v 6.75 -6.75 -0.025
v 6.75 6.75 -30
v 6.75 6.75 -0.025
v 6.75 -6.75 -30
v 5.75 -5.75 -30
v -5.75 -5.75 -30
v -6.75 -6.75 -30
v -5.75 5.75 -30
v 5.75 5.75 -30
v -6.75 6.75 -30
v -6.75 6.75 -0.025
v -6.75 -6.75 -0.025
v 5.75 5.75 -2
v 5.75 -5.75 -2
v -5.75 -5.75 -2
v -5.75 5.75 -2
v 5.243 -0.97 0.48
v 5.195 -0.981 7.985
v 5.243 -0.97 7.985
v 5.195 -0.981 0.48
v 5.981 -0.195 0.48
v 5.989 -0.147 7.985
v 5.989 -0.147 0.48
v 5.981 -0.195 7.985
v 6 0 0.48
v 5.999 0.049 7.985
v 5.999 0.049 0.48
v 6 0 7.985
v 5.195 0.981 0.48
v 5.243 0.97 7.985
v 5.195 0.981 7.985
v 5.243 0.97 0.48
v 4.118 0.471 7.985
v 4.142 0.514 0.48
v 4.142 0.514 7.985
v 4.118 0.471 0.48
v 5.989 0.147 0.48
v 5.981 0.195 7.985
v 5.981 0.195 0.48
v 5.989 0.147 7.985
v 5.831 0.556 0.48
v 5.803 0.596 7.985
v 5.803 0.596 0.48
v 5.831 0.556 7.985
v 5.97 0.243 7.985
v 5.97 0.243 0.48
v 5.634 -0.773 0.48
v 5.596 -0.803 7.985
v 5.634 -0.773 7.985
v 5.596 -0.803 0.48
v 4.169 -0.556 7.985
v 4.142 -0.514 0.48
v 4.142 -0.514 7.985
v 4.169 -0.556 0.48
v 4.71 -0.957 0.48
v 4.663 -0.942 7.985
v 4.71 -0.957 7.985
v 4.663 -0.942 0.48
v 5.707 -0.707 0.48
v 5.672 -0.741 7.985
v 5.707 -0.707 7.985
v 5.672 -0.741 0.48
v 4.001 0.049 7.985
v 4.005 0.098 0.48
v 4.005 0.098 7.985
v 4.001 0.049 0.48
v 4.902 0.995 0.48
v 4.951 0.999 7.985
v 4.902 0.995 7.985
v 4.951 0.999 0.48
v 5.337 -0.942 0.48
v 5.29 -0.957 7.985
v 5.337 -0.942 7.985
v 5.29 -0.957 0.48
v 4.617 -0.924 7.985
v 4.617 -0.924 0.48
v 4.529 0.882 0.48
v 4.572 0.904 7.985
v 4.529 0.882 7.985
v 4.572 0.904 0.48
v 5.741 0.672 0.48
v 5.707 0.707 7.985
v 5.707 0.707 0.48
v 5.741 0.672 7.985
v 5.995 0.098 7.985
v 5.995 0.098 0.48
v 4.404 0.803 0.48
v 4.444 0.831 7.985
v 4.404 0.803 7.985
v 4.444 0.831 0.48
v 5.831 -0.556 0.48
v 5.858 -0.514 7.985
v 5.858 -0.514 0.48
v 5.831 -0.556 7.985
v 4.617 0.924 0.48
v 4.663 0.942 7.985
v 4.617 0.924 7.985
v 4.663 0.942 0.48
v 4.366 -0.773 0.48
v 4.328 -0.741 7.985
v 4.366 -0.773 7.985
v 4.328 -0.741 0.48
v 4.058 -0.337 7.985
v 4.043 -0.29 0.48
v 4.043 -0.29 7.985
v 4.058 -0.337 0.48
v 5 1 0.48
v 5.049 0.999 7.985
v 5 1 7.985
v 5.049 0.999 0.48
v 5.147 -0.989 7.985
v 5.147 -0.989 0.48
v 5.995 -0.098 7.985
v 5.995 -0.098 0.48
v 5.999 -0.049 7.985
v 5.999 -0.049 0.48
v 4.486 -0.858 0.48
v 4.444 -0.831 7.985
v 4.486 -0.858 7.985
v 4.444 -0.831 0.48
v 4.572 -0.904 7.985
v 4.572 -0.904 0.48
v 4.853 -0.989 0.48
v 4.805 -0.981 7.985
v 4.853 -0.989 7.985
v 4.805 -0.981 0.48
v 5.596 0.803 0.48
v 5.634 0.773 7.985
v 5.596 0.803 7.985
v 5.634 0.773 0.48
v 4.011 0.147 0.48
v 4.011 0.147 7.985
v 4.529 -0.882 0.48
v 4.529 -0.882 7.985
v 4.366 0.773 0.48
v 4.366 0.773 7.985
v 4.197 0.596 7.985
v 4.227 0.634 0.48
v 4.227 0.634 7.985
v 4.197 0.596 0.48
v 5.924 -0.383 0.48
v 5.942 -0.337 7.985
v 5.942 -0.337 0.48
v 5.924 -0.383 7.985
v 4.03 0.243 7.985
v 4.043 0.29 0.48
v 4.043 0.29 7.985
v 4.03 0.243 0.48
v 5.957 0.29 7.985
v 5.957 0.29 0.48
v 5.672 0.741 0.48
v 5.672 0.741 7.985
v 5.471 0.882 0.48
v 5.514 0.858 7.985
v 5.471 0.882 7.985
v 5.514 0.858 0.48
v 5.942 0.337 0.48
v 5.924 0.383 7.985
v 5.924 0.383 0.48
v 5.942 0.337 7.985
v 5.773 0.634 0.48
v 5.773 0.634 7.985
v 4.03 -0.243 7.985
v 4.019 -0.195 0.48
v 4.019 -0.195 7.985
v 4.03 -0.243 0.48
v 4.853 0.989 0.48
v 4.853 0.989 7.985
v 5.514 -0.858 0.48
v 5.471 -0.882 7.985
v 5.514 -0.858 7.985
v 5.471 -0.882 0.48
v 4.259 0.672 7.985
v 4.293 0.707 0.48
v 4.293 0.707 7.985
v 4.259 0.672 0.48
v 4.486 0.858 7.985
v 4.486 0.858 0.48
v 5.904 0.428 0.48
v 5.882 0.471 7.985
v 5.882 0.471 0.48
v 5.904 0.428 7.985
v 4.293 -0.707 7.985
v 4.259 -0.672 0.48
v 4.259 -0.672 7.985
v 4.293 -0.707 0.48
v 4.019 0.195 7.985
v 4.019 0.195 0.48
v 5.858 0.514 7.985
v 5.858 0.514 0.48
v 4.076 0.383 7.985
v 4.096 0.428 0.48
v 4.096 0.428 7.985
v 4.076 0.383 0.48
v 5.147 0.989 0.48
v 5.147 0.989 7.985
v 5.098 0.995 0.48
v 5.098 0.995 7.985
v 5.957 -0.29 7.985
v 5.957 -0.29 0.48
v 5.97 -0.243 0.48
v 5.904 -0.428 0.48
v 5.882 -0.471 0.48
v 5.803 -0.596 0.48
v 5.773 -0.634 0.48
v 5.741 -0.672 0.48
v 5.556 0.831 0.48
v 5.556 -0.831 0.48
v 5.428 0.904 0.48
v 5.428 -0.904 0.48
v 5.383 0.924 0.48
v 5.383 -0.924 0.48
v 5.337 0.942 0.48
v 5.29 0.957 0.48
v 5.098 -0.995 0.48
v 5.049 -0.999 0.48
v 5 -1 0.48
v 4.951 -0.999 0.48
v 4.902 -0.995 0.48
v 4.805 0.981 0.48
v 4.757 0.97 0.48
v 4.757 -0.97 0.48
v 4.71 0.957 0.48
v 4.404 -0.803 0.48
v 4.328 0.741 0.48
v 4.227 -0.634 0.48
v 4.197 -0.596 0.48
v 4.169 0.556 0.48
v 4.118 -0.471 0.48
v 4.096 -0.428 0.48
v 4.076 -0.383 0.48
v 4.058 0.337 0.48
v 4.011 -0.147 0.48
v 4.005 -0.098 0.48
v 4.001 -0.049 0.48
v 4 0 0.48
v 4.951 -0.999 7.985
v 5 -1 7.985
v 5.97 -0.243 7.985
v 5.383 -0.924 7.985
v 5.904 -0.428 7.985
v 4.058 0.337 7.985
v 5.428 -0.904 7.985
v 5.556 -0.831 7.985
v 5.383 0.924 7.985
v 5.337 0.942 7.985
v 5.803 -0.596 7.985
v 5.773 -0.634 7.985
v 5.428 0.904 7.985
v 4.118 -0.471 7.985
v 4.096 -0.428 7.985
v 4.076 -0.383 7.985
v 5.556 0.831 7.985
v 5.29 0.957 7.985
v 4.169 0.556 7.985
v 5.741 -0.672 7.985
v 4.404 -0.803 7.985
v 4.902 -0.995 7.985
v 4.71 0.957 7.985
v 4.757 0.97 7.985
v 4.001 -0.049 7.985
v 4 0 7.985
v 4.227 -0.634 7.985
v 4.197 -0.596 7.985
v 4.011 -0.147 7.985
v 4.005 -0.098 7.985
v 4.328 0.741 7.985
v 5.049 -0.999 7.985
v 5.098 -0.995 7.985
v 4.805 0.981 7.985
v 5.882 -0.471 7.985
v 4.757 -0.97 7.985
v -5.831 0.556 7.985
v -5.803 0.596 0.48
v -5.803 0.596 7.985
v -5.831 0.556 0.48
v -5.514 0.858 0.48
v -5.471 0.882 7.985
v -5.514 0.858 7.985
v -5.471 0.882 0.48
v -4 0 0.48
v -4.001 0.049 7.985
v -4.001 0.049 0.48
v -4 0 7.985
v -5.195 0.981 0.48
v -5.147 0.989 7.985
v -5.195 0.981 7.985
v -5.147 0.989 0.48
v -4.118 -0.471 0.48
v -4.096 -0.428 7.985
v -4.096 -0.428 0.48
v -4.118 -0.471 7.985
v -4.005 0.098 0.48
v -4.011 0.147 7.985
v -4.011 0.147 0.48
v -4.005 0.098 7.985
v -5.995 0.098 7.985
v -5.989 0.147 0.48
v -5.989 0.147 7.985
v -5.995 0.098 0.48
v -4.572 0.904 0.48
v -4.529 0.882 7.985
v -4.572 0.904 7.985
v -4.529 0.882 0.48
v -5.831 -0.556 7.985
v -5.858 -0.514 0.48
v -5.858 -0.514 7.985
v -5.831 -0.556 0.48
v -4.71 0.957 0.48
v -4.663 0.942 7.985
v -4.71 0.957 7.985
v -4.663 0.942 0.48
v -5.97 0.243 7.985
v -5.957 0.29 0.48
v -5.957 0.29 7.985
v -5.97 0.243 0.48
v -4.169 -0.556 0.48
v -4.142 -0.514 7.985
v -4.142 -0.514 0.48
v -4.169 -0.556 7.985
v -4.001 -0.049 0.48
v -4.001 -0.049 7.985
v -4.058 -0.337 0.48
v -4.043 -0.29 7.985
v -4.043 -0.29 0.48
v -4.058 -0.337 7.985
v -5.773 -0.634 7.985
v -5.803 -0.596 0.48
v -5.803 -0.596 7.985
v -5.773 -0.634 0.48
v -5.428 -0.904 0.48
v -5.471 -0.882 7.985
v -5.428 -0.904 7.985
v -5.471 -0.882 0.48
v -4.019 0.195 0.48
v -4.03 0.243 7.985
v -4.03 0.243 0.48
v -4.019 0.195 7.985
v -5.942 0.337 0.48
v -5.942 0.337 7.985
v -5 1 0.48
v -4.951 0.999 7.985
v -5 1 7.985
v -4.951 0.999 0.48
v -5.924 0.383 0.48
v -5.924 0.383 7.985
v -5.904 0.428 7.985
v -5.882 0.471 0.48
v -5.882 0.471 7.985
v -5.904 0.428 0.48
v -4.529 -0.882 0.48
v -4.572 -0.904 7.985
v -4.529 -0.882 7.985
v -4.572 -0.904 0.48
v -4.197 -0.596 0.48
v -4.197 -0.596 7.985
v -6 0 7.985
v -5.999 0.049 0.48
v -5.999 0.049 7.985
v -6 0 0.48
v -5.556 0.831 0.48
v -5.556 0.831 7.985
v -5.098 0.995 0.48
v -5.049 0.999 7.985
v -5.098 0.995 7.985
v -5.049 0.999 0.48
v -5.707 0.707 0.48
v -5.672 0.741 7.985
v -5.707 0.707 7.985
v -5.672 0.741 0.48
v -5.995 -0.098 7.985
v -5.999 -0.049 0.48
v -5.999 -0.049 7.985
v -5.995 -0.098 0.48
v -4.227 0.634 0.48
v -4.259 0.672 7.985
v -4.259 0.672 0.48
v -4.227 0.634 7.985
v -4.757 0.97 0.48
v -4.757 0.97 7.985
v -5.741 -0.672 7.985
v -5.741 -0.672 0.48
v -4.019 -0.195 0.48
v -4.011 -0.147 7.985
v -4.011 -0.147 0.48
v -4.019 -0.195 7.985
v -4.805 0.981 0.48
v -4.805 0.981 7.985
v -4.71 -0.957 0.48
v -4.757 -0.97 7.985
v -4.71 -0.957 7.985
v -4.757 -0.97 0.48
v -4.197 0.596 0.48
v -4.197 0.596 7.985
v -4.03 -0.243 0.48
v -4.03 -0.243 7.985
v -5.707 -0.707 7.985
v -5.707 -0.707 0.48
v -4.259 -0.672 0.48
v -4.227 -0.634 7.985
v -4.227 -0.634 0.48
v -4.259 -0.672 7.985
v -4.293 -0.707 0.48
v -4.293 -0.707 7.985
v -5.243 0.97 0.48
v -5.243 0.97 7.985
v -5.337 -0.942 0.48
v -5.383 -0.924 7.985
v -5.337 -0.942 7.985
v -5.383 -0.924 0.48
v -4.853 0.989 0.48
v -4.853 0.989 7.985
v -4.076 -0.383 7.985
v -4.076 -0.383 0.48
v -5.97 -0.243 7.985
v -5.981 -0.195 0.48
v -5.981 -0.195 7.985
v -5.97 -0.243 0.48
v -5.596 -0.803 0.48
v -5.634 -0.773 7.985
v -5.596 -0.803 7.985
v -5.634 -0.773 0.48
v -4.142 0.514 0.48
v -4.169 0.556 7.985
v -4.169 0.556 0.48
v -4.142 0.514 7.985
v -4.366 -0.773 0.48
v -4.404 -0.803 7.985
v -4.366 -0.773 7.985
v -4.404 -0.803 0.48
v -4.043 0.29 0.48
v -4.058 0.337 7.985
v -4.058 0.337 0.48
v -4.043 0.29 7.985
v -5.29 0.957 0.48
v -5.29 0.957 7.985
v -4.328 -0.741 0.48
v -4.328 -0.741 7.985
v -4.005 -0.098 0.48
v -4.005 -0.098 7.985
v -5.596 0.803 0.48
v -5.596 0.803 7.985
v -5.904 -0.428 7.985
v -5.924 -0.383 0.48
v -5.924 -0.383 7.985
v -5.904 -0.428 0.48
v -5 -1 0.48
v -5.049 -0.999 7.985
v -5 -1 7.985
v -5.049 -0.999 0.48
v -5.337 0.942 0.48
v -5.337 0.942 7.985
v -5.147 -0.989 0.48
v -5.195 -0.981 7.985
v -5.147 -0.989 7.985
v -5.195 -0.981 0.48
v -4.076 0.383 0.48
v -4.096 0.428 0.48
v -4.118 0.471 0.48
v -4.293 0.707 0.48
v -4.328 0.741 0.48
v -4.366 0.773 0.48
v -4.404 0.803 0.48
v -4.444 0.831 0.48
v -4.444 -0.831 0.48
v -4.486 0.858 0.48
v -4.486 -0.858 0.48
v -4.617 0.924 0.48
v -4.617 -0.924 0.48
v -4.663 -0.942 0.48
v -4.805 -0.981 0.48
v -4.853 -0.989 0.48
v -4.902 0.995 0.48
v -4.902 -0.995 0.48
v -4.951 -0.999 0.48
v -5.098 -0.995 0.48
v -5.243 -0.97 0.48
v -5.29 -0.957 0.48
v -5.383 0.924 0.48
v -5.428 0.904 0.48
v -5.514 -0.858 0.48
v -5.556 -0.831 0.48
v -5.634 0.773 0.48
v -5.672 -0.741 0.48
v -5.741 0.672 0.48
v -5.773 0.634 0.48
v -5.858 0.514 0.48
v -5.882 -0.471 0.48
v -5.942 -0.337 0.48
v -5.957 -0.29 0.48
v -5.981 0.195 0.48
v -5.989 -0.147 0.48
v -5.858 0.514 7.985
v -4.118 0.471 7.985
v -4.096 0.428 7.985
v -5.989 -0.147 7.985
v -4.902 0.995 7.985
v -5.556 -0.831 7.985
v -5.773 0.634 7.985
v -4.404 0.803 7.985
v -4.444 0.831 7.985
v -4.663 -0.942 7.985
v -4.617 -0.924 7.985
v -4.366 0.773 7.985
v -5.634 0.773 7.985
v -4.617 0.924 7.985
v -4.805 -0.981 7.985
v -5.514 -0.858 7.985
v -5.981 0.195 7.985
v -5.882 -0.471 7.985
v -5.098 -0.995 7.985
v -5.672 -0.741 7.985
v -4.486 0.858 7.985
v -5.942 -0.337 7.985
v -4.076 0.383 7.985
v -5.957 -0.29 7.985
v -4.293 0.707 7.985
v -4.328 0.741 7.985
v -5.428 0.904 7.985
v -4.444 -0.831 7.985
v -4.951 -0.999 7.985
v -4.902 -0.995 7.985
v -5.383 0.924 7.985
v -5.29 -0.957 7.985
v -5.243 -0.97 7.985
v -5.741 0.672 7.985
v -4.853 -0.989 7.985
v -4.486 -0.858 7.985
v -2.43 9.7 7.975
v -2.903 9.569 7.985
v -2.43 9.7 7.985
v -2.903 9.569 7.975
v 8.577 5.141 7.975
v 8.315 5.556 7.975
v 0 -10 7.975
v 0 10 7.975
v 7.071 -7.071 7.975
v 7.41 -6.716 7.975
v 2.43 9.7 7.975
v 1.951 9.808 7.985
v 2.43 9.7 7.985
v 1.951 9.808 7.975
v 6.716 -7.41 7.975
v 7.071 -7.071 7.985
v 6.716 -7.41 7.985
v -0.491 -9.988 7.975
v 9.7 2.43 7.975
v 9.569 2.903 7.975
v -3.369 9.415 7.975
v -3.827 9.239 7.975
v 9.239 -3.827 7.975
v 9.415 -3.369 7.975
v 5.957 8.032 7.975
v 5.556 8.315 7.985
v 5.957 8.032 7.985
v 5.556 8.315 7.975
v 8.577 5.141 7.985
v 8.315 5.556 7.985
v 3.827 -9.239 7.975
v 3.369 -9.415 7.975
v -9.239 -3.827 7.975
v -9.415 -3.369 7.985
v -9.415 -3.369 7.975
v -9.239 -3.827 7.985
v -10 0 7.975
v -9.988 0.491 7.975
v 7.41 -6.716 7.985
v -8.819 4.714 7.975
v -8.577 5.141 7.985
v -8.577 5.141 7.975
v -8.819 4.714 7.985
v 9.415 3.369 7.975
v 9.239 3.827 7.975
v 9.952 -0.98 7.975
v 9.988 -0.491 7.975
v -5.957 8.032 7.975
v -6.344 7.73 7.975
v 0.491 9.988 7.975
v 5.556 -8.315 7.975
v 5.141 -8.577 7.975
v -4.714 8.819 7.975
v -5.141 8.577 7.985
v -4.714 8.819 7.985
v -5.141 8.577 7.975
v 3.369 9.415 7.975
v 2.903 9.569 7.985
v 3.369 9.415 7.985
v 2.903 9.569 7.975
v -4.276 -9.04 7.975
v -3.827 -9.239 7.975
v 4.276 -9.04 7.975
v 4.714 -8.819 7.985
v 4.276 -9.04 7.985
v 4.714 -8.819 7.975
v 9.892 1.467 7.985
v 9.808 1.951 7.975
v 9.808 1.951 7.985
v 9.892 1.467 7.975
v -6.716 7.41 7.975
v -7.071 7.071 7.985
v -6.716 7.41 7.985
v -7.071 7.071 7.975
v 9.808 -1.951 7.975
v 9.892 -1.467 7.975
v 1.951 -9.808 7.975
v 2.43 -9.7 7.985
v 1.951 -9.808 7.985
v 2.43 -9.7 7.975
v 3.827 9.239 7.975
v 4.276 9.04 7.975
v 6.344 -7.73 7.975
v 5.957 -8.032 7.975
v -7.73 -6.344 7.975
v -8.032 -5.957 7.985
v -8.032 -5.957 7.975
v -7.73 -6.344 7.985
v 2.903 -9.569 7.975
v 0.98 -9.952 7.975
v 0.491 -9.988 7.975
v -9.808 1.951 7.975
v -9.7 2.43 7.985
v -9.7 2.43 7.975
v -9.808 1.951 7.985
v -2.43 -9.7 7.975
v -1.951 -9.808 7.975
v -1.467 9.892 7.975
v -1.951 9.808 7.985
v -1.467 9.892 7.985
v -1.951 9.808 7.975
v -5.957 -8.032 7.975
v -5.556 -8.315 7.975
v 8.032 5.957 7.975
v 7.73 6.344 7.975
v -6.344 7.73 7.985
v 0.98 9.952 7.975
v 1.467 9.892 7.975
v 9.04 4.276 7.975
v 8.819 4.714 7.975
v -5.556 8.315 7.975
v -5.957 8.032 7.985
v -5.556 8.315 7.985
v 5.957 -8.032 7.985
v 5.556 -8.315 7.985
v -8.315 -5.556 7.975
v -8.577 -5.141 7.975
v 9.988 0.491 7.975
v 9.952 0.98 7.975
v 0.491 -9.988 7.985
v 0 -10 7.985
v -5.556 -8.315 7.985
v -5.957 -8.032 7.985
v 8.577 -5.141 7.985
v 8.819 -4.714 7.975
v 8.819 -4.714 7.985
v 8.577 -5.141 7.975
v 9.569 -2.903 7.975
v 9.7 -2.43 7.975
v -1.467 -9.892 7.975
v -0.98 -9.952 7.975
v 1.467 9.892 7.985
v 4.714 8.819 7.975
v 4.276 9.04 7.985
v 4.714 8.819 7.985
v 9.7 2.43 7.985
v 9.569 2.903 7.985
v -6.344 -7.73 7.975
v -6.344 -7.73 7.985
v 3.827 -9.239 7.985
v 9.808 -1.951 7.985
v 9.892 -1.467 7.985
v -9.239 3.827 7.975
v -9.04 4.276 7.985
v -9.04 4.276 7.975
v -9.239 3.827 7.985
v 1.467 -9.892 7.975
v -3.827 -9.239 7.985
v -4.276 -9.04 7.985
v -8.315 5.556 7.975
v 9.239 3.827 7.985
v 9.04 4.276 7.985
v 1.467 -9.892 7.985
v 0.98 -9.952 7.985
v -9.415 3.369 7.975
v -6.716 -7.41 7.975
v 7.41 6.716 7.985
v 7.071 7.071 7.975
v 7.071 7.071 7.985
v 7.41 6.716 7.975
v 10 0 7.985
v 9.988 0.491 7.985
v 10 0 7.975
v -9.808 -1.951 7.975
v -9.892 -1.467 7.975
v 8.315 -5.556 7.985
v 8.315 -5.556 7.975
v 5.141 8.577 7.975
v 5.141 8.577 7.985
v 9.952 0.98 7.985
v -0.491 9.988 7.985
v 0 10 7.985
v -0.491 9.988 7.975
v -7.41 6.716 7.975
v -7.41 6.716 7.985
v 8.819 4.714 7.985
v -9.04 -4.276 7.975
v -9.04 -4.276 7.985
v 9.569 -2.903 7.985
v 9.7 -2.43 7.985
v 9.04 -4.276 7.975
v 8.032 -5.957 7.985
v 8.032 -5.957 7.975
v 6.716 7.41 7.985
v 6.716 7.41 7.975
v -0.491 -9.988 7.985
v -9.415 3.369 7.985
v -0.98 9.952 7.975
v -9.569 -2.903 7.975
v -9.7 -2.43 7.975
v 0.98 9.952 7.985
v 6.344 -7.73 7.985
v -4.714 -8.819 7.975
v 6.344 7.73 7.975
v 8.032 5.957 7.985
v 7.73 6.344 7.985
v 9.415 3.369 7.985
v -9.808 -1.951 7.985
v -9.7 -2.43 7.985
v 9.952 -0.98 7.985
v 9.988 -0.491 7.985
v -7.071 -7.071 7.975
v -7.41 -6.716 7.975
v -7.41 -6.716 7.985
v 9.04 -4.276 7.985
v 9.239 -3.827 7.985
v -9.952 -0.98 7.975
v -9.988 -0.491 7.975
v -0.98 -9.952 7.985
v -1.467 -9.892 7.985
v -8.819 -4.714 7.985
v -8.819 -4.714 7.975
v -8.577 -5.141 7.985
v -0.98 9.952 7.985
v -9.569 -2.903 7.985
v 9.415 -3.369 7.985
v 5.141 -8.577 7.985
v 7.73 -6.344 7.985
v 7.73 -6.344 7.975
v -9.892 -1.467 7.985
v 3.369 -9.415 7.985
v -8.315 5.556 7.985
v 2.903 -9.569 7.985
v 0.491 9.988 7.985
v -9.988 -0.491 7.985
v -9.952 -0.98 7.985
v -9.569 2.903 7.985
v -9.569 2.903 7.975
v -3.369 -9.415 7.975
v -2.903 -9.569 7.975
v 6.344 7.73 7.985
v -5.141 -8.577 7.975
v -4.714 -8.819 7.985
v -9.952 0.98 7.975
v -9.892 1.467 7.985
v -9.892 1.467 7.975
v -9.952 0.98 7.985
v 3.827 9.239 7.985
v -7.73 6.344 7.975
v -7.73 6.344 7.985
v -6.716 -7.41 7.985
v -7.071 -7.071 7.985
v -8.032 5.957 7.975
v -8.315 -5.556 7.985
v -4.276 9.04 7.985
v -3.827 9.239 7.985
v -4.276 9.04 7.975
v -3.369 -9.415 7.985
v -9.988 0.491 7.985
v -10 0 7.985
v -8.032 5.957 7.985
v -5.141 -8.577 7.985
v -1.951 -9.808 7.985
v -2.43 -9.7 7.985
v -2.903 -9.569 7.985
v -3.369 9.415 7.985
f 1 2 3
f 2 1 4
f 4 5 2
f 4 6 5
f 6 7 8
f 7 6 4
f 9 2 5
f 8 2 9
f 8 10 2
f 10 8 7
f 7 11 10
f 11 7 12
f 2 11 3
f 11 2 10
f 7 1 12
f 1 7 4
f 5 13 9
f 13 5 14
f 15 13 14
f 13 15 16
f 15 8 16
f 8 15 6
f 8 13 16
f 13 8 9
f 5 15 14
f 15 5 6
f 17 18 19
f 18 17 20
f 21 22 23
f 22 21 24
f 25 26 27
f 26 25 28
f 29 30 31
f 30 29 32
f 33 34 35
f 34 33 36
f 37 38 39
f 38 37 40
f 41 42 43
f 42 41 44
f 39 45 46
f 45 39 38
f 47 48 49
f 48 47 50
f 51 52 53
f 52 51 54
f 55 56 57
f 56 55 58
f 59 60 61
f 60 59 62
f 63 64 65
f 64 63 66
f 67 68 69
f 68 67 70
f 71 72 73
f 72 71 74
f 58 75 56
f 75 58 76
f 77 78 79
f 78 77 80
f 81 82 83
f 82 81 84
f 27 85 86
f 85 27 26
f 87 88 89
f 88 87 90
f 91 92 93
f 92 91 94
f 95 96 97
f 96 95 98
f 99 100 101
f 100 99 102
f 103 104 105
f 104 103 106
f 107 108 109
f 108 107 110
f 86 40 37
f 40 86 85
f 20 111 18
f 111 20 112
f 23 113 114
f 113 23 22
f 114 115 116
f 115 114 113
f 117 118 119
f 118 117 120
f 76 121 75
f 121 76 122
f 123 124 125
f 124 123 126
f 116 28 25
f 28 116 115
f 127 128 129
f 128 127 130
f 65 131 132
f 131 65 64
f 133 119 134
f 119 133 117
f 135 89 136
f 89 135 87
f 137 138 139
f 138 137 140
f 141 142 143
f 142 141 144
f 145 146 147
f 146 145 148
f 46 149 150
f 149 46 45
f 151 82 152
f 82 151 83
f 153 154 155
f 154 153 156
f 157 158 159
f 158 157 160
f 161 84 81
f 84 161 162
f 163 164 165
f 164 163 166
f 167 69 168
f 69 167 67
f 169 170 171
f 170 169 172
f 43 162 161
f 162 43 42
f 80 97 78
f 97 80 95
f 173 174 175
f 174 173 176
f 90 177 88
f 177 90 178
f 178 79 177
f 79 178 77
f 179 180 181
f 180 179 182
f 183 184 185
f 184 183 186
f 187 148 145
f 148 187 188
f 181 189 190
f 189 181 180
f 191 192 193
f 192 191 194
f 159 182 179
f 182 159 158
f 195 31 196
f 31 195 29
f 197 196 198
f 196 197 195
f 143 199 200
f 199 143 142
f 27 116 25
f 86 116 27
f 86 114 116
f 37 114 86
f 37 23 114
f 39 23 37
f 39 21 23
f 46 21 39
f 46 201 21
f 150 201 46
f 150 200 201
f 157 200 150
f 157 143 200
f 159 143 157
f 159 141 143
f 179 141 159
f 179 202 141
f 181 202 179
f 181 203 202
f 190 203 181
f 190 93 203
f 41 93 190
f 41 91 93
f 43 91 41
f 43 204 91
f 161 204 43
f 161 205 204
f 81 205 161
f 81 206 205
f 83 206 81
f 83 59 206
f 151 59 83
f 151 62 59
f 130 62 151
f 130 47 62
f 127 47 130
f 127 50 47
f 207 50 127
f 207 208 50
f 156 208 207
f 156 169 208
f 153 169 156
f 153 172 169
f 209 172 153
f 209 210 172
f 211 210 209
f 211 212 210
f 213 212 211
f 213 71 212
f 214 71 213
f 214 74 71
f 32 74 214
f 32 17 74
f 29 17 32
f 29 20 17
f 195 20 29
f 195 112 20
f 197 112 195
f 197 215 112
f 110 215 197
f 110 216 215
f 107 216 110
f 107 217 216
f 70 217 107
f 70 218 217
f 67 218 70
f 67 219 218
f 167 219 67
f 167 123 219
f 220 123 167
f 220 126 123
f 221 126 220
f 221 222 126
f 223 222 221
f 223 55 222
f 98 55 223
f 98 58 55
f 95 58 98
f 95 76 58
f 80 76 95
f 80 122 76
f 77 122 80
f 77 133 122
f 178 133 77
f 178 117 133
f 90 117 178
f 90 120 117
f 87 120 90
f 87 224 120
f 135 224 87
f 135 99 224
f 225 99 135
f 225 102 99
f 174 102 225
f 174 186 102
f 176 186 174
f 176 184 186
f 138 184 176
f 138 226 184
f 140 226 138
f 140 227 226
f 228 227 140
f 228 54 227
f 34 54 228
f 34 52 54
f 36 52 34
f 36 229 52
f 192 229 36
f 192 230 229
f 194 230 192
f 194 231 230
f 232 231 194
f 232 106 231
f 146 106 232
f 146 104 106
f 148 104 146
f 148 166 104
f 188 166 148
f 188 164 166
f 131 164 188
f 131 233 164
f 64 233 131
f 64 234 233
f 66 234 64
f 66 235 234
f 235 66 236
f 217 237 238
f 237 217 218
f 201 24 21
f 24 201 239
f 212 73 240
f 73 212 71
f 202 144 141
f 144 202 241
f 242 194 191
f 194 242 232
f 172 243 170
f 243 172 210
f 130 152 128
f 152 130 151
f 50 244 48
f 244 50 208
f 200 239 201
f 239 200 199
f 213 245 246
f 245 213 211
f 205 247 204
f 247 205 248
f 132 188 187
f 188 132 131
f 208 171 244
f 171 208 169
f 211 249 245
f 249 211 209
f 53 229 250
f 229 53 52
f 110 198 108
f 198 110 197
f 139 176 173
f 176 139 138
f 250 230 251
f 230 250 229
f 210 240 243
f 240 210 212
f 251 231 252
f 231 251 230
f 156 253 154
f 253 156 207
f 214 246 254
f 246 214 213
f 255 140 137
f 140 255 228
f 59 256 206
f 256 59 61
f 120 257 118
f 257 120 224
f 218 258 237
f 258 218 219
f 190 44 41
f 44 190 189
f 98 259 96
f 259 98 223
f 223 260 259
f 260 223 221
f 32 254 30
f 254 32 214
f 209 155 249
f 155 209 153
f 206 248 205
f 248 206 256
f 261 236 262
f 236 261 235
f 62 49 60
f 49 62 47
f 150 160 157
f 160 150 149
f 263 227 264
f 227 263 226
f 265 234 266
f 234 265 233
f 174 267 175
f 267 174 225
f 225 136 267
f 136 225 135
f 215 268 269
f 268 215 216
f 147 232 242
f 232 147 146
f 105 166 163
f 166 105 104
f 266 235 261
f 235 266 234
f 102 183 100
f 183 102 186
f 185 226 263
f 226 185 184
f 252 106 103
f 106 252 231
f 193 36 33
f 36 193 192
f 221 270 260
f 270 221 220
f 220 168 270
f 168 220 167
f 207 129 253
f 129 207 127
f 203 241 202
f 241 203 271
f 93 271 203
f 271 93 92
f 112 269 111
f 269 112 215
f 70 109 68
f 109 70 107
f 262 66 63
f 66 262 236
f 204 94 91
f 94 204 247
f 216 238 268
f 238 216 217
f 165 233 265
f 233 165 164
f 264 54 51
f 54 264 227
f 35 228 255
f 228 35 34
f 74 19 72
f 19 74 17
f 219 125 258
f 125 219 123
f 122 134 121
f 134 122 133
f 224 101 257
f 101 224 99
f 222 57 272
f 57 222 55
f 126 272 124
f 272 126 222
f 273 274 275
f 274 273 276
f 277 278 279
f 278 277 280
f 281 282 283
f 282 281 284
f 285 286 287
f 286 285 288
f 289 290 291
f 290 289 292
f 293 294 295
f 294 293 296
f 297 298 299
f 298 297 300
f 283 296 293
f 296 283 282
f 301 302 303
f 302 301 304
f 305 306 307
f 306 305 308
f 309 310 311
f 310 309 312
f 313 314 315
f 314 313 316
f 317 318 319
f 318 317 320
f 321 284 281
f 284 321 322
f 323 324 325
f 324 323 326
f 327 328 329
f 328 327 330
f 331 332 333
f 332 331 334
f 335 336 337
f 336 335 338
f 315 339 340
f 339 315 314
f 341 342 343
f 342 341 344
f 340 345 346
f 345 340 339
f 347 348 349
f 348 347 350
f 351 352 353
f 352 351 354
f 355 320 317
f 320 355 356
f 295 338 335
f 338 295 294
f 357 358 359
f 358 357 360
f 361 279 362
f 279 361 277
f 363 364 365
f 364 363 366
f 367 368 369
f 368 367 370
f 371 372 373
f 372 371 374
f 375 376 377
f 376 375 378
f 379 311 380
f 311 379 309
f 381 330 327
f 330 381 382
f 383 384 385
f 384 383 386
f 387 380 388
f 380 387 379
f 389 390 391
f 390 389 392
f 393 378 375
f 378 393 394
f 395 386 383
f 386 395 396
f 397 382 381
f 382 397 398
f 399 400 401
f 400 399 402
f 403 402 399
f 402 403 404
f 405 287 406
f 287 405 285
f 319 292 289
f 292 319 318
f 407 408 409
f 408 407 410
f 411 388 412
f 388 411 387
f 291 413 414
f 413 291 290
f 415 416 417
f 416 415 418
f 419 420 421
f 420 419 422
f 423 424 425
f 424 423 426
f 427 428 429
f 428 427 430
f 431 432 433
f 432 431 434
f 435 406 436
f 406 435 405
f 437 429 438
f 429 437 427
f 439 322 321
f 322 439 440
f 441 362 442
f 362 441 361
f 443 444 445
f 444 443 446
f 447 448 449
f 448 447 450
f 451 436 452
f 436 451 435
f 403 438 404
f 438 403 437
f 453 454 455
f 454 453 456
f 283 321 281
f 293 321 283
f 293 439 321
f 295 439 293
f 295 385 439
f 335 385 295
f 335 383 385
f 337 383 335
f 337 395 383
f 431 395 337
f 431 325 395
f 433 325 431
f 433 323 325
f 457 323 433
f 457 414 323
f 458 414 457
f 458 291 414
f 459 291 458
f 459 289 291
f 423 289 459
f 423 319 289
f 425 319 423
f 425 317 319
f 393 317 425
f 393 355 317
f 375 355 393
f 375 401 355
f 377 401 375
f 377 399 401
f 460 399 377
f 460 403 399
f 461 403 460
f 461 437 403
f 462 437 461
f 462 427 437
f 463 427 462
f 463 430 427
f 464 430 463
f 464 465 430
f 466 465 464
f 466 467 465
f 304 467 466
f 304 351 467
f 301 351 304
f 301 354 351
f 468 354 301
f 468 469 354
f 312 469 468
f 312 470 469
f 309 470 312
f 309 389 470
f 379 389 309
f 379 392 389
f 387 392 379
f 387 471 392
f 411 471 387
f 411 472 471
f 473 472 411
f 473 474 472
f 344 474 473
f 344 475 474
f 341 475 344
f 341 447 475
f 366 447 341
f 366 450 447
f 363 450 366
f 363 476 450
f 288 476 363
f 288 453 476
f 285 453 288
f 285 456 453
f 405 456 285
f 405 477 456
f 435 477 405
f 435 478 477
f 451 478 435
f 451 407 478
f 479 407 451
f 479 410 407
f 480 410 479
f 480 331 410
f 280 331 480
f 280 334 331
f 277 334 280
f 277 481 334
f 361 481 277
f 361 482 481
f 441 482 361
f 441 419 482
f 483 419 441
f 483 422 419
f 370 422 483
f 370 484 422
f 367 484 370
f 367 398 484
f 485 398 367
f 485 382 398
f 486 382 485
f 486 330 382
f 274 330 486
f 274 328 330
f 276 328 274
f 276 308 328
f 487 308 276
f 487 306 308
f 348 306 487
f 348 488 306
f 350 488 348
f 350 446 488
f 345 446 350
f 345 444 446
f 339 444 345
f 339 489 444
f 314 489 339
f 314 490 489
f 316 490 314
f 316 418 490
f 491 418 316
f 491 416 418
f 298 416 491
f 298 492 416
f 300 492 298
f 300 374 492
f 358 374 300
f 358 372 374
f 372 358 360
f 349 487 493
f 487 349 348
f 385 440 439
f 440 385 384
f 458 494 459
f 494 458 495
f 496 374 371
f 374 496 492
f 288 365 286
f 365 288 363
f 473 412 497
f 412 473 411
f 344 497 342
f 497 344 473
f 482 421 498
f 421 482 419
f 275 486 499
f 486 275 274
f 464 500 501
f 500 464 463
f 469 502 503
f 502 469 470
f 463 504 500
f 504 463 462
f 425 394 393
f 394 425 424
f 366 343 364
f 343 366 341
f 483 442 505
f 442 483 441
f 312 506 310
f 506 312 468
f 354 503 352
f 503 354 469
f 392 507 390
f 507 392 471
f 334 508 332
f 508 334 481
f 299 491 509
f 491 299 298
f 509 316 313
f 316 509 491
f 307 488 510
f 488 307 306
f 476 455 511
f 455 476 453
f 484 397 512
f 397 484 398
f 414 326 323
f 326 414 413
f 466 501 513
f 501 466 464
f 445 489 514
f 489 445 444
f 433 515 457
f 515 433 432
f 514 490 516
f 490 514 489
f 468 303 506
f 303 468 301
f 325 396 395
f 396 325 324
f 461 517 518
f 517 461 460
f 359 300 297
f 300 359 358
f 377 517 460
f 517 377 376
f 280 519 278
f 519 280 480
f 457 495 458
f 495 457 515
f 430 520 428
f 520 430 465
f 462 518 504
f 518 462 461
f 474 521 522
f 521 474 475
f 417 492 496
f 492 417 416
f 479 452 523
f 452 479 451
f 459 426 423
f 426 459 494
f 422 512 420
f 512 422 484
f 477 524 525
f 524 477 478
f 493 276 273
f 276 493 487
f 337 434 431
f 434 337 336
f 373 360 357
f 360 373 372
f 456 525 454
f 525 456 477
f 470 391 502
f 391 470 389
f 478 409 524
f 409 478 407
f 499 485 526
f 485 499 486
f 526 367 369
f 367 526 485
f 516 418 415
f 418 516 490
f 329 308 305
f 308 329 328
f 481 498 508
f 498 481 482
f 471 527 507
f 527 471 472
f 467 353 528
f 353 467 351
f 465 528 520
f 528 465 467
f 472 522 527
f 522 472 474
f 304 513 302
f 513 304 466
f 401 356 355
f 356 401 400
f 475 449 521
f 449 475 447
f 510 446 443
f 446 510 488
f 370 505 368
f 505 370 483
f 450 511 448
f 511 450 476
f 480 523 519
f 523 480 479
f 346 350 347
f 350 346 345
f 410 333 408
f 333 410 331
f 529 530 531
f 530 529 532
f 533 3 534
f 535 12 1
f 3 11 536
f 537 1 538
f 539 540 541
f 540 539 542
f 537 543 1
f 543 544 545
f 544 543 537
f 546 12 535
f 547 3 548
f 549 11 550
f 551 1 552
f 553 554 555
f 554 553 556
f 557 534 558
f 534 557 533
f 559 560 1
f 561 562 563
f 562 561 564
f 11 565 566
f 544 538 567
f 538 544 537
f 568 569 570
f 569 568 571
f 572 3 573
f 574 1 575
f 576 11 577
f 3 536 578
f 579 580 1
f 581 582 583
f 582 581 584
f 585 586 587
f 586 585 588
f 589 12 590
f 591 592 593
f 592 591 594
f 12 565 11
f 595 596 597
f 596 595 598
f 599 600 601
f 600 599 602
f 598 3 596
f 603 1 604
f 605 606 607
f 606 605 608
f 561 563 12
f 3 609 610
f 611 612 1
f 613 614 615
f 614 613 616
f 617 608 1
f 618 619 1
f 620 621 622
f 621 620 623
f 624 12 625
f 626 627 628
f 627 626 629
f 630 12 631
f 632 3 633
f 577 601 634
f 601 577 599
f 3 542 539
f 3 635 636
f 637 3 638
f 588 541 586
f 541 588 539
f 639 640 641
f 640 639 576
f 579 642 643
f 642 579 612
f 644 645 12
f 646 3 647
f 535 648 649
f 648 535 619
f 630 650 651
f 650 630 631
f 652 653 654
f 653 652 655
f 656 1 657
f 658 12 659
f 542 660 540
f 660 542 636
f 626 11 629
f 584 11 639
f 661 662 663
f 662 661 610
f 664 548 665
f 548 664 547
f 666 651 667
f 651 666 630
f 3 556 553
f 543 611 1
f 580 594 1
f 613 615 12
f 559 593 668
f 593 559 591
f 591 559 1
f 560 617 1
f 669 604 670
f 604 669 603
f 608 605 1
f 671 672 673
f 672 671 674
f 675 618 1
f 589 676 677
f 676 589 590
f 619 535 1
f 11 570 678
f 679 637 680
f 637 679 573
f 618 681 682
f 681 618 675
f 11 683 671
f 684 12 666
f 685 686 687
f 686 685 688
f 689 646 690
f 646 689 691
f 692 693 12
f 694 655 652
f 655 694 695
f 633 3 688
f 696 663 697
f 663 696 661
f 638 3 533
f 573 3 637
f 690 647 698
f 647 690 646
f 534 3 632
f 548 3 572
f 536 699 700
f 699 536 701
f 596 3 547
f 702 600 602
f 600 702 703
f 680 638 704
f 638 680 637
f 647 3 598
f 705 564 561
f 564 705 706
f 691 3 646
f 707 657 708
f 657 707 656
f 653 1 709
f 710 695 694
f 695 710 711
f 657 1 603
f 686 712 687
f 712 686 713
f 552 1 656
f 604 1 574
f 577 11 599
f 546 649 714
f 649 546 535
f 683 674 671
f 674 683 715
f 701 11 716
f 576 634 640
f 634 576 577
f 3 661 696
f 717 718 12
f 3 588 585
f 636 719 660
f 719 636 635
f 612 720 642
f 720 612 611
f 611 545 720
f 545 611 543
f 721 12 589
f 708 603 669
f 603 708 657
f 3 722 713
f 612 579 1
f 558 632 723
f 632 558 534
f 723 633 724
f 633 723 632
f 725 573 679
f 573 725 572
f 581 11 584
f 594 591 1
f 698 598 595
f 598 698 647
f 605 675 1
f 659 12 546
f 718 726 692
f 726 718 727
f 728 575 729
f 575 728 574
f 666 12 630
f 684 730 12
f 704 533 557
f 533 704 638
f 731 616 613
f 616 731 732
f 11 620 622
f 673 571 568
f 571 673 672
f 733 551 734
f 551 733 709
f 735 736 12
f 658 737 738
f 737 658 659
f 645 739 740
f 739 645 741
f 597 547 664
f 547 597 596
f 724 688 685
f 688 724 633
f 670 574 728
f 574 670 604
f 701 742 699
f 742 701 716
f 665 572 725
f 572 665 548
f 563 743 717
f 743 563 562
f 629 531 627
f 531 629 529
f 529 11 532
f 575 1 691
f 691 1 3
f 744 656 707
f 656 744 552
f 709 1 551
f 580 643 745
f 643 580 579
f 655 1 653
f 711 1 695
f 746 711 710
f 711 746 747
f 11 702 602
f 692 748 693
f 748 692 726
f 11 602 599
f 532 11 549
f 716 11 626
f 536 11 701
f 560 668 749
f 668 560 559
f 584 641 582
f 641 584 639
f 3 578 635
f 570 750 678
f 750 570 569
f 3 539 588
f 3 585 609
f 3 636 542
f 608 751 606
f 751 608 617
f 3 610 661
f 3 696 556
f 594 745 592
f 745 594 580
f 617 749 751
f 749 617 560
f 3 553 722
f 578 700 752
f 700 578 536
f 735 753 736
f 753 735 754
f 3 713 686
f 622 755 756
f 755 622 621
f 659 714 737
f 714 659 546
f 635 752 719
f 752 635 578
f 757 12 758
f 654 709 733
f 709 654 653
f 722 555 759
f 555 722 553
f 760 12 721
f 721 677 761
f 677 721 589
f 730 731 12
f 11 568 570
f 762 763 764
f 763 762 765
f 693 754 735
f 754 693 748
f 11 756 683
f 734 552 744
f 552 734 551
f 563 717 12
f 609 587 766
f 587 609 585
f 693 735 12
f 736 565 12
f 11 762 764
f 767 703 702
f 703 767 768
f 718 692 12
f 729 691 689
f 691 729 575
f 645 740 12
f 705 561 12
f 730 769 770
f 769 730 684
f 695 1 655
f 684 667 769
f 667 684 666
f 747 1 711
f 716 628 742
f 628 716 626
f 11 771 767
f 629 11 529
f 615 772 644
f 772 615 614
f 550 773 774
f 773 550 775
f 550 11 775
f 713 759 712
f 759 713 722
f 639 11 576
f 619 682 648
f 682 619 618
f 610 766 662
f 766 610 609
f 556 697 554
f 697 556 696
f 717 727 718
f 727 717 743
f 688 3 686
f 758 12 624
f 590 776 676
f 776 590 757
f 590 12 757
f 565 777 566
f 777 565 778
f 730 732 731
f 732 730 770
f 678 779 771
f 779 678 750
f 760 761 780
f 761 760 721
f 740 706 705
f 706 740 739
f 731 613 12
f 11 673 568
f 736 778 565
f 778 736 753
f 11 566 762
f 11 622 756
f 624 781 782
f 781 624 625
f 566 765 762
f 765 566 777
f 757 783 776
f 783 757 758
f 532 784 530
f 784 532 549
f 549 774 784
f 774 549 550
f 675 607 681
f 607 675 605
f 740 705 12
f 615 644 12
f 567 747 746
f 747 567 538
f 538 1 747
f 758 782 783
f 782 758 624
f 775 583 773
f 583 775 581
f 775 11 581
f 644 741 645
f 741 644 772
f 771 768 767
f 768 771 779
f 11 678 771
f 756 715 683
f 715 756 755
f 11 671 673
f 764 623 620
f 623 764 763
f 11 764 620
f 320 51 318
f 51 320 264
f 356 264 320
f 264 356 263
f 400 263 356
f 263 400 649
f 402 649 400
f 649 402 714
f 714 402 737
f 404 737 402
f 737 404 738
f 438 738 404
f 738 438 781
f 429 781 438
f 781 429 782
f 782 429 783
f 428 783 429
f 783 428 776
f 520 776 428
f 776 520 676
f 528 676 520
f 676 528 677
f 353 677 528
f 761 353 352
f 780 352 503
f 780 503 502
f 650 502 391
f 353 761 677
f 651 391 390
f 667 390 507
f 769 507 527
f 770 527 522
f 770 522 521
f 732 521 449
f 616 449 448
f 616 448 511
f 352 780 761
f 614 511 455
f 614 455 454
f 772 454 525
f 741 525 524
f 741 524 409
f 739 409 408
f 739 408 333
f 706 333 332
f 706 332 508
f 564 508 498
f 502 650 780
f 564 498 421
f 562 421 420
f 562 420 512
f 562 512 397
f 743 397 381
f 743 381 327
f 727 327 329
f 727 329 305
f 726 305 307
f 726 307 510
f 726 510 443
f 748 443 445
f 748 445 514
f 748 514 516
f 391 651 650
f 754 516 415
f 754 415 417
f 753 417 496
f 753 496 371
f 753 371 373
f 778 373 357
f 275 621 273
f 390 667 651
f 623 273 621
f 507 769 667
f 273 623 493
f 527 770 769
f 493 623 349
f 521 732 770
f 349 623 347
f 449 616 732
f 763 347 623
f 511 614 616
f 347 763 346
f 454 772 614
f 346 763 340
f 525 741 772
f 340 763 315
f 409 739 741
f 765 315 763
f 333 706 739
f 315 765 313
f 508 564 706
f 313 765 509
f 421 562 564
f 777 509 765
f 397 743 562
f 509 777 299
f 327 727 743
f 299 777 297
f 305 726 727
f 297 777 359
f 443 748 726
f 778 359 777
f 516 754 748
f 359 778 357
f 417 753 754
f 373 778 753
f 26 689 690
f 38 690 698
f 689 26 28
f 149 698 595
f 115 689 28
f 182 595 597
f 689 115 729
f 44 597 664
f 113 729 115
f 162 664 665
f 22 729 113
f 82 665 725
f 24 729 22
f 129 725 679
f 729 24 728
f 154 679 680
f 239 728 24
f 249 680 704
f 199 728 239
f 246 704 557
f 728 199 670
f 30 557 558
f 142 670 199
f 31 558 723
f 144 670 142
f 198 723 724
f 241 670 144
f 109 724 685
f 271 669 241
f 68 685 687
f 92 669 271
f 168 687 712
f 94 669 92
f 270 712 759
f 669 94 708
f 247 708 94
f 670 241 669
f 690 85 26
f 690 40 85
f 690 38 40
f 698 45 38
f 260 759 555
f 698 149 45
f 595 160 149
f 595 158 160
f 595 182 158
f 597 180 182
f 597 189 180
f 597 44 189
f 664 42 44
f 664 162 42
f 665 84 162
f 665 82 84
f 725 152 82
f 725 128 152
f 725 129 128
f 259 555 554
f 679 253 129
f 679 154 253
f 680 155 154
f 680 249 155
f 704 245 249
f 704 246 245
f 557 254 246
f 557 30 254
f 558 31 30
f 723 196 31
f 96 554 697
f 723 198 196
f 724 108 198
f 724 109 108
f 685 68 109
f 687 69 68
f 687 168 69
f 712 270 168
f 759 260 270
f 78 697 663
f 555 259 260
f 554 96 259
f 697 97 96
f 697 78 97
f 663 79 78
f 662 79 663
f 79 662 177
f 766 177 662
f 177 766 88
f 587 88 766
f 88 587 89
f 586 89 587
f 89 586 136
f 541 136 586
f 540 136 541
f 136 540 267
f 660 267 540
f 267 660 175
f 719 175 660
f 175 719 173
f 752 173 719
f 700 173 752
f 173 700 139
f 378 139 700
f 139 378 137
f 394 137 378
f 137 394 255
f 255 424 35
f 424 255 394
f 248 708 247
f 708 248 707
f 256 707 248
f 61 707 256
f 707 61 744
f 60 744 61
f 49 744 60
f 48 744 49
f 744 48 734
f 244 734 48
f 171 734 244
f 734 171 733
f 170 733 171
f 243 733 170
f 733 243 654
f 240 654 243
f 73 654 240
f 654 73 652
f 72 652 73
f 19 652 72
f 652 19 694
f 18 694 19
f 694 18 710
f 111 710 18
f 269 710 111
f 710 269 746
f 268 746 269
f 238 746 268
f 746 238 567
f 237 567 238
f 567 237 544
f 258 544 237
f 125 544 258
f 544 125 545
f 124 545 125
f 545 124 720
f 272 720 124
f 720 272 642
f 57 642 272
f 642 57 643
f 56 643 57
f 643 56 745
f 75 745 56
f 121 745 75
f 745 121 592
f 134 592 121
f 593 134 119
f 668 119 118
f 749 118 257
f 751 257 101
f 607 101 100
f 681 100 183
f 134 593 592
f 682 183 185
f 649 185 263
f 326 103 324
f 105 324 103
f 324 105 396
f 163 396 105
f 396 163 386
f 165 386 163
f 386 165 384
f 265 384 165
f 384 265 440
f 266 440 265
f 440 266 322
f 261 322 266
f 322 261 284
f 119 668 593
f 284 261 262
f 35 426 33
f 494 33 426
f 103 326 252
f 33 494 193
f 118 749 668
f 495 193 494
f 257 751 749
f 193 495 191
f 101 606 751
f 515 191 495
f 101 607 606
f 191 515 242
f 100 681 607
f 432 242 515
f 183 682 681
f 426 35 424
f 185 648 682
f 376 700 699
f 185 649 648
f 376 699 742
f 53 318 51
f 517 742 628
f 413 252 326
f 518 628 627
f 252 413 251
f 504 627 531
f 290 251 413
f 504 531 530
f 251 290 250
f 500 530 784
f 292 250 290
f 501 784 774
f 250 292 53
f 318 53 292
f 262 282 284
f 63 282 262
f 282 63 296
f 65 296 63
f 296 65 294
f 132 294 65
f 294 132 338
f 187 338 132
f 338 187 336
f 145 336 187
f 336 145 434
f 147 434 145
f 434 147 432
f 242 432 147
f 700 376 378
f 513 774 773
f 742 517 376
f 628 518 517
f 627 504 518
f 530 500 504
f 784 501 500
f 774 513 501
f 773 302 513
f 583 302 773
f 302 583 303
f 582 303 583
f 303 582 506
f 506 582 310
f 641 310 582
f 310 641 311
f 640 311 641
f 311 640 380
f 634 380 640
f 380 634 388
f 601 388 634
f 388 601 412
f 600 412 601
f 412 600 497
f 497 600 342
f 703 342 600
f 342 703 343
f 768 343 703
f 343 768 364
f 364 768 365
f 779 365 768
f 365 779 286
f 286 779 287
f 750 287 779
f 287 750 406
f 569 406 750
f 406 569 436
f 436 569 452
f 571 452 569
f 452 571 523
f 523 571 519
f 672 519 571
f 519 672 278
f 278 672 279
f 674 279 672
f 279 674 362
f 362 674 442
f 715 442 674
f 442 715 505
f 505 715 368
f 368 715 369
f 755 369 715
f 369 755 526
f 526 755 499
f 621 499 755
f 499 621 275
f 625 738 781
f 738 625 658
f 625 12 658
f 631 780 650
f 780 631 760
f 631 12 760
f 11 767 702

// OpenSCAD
pin_width = 11.5;  // shaft's x
pin_height = 30;   // shaft's z
pin_wall = 2;

screw_hole_d = 2;
screw_hole_l = 7.5;
screw_offset = 10;
mount_d = 20;
mount_h = screw_hole_l + 0.5;

$fn = $preview ? 64 : 128;

union() {
    // Top mount
    translate([0, 0, mount_h - 0.02])
    color("red", 1.0)
    difference() {
      translate([0, 0, mount_h/-2])
      //cube([pin_width + pin_wall, pin_width + pin_wall, mount_h], center=true);
      //cylinder(h=mount_h, d=mount_d, center=true);
      hull() {
        translate([0, 0, mount_h/-2])
          cube([pin_width + pin_wall, pin_width + pin_wall, 0.01], center=true);

        translate([0, 0, mount_h/2])
          cylinder(h=0.01, d=mount_d, center=true);
      }

      for(i = [2, -2]) {
        translate([screw_offset/i, 0, -screw_hole_l])
          cylinder(h=screw_hole_l + 1, d=screw_hole_d);
      }
    }


    // Tunnel for clip handle
    //-(pin_wall + base_wall - 0.01)
    translate([0, 0, pin_height/-2])
    difference() {
        // shaft
        cube([pin_width + pin_wall, pin_width + pin_wall, pin_height], center=true);
        // shaft extrusion (subtrusion?)
        translate([0, 0, -pin_wall])
        cube([pin_width, pin_width, pin_height], center=true);
    }
}
